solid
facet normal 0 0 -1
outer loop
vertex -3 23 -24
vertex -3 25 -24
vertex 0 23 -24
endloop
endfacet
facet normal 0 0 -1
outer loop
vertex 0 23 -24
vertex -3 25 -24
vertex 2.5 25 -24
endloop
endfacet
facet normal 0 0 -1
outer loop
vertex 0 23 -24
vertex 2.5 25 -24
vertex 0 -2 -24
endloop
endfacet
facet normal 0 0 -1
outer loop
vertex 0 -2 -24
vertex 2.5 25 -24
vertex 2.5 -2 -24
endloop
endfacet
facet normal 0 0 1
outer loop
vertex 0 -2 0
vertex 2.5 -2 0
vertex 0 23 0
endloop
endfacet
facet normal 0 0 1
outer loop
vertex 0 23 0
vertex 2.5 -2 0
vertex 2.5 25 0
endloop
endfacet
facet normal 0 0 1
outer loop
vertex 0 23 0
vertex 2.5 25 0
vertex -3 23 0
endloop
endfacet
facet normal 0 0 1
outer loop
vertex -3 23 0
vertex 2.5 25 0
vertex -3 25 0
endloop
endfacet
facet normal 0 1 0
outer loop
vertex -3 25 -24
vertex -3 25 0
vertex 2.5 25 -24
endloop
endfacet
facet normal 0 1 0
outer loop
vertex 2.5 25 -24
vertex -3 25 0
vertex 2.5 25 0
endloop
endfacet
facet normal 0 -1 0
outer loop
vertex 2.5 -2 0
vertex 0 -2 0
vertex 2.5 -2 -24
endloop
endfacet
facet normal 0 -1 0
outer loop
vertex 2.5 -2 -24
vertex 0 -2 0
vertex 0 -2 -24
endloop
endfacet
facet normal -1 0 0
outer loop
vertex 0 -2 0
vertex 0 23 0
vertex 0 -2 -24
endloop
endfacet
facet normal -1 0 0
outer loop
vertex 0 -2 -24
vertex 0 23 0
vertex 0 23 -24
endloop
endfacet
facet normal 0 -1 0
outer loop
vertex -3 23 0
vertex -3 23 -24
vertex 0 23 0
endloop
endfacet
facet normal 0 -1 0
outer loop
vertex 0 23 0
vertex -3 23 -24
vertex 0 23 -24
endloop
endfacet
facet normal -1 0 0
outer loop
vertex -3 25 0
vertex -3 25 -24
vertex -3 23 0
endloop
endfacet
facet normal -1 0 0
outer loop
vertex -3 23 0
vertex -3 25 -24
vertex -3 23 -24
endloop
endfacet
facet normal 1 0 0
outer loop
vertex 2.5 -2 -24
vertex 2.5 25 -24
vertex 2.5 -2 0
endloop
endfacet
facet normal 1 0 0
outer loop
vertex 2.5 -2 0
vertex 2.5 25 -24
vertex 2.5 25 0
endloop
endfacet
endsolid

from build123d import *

# Parameters (mm, degrees)
SKETCH1_W           = 3
SKETCH1_H           = 24
BOSS_EXTRUDE1_DEPTH = 23
SKETCH2_W           = 6
SKETCH2_H           = 24
BOSS_EXTRUDE2_DEPTH = 2
SKETCH4_W           = 3
SKETCH4_H           = 24
BOSS_EXTRUDE3_DEPTH = 2
SKETCH5_W           = 24
SKETCH5_H           = 27
CUT_EXTRUDE1_DEPTH  = 0.5


with BuildPart() as part:
    # Sketch1 → Boss-Extrude1 (new body)
    with BuildSketch(Plane(origin=(0, 0, 0), x_dir=(1, 0, 0), z_dir=(0, 1, 0))):
        with Locations((1.5, 12)):
            Rectangle(SKETCH1_W, SKETCH1_H)
    extrude(amount=BOSS_EXTRUDE1_DEPTH)

    # Sketch2 → Boss-Extrude2 (add)
    with BuildSketch(Plane(origin=(0, 23, 0), x_dir=(1, 0, 0), z_dir=(0, 1, 0))):
        with Locations((0, 12)):
            Rectangle(SKETCH2_W, SKETCH2_H)
    extrude(amount=BOSS_EXTRUDE2_DEPTH)

    # Sketch4 → Boss-Extrude3 (add)
    with BuildSketch(Plane.XZ):
        with Locations((1.5, -12)):
            Rectangle(SKETCH4_W, SKETCH4_H)
    extrude(amount=BOSS_EXTRUDE3_DEPTH)

    # Sketch5 → Cut-Extrude1 (cut)
    with BuildSketch(Plane(origin=(3, 0, 0), x_dir=(0, 0, -1), z_dir=(1, 0, 0))):
        with Locations((12, 11.5)):
            Rectangle(SKETCH5_W, SKETCH5_H)
    extrude(amount=-CUT_EXTRUDE1_DEPTH, mode=Mode.SUBTRACT)


solid = part.part
